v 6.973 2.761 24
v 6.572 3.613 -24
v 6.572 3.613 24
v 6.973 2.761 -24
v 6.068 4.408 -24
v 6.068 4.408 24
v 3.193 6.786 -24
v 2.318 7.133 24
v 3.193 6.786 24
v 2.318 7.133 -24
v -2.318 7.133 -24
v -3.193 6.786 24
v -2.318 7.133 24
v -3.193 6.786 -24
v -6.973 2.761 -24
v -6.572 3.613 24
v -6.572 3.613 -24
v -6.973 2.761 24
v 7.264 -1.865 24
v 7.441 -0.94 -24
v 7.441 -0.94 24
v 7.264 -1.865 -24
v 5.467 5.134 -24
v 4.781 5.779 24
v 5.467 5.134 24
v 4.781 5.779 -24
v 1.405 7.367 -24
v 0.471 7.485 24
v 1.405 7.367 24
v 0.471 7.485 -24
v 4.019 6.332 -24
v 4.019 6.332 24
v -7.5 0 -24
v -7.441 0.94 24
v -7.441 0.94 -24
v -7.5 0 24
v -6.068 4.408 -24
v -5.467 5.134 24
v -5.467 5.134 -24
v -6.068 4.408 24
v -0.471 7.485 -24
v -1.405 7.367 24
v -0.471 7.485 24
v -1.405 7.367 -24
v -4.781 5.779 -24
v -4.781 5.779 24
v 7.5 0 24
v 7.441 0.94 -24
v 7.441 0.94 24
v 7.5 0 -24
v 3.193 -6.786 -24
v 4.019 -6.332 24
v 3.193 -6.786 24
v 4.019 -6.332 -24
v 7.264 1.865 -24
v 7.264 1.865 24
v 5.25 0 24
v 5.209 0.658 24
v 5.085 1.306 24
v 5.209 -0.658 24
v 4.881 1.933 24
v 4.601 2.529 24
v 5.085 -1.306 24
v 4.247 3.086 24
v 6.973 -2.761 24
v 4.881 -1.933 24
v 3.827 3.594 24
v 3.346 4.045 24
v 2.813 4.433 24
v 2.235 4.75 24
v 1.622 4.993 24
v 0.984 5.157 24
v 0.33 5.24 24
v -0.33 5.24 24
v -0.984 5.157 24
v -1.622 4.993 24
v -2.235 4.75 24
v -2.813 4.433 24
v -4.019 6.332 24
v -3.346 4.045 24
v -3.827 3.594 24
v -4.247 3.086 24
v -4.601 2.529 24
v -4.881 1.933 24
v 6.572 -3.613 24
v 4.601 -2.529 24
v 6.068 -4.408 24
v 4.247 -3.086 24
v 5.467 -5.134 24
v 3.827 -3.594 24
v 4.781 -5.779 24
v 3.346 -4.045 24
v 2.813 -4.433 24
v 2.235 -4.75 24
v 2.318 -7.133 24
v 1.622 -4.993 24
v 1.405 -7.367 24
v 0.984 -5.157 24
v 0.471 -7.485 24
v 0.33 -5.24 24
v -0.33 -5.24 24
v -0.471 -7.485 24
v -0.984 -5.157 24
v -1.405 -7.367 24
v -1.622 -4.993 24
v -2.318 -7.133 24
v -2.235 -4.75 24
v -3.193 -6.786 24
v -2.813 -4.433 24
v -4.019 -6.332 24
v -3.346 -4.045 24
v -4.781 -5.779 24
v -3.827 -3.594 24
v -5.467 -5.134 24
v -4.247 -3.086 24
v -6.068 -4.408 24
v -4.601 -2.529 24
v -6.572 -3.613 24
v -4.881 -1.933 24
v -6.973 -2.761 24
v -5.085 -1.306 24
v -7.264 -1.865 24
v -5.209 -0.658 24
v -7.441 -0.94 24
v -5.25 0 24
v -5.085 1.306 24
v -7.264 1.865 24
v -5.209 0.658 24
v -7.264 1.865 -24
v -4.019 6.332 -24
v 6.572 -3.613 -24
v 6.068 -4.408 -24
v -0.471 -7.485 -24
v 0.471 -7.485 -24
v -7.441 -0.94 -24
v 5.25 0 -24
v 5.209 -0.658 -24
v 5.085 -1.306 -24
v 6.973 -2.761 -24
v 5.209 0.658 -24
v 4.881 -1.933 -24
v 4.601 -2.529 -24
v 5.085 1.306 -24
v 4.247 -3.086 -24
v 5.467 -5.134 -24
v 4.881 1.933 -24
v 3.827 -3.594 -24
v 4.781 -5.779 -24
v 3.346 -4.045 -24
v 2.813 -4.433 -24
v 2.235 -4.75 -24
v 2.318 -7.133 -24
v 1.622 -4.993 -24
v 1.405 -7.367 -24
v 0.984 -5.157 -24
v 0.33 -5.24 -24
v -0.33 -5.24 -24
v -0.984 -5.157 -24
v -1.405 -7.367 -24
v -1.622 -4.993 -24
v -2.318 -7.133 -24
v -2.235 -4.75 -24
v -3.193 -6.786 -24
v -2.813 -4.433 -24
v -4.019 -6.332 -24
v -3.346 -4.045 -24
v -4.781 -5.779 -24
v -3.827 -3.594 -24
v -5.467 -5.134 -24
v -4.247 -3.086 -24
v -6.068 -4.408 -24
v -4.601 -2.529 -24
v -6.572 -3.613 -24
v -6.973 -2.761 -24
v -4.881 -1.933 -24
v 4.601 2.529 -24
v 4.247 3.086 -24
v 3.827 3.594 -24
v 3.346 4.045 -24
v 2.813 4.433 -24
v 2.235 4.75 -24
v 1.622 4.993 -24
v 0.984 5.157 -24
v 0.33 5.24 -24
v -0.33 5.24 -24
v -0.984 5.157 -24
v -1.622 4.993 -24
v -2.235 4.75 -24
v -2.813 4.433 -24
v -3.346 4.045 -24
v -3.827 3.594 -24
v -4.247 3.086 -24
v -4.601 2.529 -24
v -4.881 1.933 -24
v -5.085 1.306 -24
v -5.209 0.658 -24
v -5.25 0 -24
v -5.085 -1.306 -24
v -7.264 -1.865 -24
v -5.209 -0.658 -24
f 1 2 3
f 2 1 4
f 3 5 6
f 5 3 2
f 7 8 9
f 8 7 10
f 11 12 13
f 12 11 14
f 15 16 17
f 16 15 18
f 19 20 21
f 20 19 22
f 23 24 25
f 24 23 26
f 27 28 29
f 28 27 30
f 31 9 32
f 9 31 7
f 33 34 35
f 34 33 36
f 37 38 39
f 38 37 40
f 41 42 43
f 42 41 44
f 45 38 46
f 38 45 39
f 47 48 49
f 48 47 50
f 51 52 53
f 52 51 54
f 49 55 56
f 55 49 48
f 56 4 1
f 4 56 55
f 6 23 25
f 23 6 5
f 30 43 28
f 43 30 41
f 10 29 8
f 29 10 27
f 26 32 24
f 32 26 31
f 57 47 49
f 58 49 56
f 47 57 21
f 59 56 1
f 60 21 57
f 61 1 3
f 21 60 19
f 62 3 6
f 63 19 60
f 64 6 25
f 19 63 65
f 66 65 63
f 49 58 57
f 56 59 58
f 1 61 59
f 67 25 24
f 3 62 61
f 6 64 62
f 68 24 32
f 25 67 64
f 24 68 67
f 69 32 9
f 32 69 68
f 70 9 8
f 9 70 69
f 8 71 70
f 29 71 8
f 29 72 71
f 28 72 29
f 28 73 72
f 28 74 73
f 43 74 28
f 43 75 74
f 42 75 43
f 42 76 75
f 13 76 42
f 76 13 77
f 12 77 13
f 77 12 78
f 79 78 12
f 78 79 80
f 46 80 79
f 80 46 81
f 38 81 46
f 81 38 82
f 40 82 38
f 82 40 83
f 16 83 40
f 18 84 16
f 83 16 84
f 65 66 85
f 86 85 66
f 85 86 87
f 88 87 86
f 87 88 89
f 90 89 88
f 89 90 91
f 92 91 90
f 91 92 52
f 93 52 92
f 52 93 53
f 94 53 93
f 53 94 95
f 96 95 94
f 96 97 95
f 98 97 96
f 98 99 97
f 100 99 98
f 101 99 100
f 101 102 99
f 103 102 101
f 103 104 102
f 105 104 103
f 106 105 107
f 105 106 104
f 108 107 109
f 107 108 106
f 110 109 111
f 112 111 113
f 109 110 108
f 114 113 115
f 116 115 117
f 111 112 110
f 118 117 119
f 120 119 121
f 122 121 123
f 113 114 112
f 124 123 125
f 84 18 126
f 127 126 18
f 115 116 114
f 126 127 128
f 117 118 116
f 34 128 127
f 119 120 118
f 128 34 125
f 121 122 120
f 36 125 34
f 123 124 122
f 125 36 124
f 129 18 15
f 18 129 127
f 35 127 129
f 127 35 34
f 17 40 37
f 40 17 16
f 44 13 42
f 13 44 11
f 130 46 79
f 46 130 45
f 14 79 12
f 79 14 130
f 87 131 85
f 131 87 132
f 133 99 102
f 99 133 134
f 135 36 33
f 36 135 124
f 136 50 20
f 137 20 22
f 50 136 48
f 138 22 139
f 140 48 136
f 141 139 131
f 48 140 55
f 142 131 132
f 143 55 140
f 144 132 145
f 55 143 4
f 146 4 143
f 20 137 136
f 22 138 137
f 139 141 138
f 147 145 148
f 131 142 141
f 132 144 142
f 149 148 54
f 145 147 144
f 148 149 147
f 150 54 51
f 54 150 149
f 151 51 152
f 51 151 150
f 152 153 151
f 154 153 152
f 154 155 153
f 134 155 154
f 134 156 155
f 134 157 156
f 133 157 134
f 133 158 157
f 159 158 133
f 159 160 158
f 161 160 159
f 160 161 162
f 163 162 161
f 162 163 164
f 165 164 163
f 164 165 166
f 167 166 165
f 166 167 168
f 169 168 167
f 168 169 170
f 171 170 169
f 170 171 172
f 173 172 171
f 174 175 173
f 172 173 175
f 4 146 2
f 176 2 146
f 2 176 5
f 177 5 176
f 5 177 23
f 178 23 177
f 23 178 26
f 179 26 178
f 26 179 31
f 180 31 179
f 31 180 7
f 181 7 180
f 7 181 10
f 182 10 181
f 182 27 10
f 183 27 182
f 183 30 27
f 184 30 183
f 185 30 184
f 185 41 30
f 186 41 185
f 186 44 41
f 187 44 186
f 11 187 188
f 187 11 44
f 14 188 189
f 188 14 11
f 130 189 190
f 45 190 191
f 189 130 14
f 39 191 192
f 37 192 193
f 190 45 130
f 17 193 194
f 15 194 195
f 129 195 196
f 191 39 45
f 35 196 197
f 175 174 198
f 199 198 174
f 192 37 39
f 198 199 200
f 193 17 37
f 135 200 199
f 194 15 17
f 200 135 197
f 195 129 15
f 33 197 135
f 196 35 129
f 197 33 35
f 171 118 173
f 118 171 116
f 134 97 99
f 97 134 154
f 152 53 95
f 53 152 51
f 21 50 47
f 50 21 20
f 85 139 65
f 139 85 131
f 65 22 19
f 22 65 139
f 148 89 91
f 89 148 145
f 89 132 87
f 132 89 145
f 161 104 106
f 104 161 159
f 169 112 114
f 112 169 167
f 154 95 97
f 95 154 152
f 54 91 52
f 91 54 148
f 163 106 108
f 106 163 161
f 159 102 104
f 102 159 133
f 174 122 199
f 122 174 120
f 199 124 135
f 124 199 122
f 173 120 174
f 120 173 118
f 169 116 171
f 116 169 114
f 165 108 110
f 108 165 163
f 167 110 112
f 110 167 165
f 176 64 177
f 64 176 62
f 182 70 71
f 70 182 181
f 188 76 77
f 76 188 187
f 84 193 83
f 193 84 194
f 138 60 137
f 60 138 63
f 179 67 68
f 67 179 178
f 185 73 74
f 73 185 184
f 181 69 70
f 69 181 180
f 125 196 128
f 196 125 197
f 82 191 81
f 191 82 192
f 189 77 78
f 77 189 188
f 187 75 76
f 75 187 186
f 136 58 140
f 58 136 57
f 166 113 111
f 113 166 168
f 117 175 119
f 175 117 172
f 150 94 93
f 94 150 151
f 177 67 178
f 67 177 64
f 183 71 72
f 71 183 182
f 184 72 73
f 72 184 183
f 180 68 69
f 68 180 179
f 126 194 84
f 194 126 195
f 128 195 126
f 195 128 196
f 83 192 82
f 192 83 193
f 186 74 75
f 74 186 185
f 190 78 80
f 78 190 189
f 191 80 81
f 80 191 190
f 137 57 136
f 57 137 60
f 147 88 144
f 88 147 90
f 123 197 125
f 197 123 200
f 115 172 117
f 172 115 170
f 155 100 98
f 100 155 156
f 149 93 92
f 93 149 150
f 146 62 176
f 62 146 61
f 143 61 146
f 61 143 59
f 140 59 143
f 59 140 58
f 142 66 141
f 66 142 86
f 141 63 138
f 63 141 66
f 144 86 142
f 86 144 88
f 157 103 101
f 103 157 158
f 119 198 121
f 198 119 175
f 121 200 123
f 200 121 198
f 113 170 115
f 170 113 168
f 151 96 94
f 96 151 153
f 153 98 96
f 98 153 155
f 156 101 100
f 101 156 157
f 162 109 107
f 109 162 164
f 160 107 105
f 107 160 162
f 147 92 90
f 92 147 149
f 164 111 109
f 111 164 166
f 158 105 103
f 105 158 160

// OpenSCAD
$fn = 50;


difference() {
	union() {
		translate(v = [0, 0, -24.0000000000]) {
			cylinder(h = 48, r = 7.5000000000);
		}
	}
	union() {
		translate(v = [0, 0, -100.0000000000]) {
			cylinder(h = 200, r = 5.2500000000);
		}
	}
}
